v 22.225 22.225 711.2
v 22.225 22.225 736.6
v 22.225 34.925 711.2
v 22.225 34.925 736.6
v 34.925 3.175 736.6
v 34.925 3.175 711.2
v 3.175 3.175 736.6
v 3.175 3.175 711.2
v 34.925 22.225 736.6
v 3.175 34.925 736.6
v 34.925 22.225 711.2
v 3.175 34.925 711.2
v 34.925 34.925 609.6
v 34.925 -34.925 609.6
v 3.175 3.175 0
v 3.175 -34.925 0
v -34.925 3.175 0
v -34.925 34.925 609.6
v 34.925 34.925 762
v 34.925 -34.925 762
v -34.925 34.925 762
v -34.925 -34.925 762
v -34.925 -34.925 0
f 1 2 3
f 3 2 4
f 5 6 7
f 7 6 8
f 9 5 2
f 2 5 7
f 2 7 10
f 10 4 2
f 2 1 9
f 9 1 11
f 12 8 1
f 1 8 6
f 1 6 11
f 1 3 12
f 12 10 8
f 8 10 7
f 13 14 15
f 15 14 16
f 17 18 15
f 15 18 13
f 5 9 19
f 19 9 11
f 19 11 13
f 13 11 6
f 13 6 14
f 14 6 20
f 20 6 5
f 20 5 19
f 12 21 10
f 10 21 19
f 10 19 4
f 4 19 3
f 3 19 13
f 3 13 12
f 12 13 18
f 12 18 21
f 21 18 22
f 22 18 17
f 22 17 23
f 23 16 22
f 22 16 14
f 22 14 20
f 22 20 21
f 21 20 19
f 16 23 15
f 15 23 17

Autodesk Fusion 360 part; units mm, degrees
sketch "Sketch2" plane through (0, 0, 0) normal (0, 0, 1) x (1, 0, 0)
  line L0 (-34.925, 34.925) -> (34.925, 34.925)
  line L1 (34.925, 34.925) -> (34.925, -34.925)
  line L2 (34.925, -34.925) -> (-34.925, -34.925)
  line L3 (-34.925, -34.925) -> (-34.925, 34.925)
  line L4 (-34.925, 34.925) -> (34.925, -34.925) construction
  line L5 (34.925, 34.925) -> (-34.925, -34.925) construction
  dimension "d1" = 69.85
  dimension "d2" = 69.85
extrude "Extrude1" add sketch "Sketch2" along normal blind 762
chamfer "Chamfer1" distance 31.75 distance2 609.6 2 edges at (34.925, 0, 0) (0, 34.925, 0) measured on face at (11.6417, -11.6417, 0) measured on face at (11.6417, -11.6417, 0)
sketch "Sketch6" plane through (34.925, 0, 0) normal (1, 0, 0) x (0, 1, 0)
  line L0 (-34.925, 609.6) -> (34.925, 609.6)
  line L1 (34.925, 609.6) -> (34.925, 762)
  line L2 (34.925, 762) -> (-34.925, 762)
  line L3 (-34.925, 762) -> (-34.925, 609.6)
  line L4 (-34.925, 762) -> (-34.925, 723.9) construction
  line L5 (-34.925, 723.9) -> (12.7, 723.9) construction
  line L6 (3.175, 736.6) -> (22.225, 736.6)
  line L7 (22.225, 736.6) -> (22.225, 711.2)
  line L8 (22.225, 711.2) -> (3.175, 711.2)
  line L9 (3.175, 711.2) -> (3.175, 736.6)
  line L10 (3.175, 736.6) -> (22.225, 711.2) construction
  line L11 (22.225, 736.6) -> (3.175, 711.2) construction
  point P0 (12.7, 723.9)
  dimension "d23" = 38.1
  dimension "d24" = 47.625
  dimension "d25" = 19.05
  dimension "d26" = 25.4
extrude "Extrude5" cut sketch "Sketch6" against normal blind 31.75 contours L6 L7 L8 L9
sketch "Sketch7" plane through (0, 34.925, 0) normal (0, 1, 0) x (-1, 0, 0)
  line L0 (-34.925, 609.6) -> (34.925, 609.6)
  line L1 (34.925, 609.6) -> (34.925, 762)
  line L2 (34.925, 762) -> (-34.925, 762)
  line L3 (-34.925, 762) -> (-34.925, 609.6)
  line L4 (34.925, 762) -> (34.925, 723.9) construction
  line L5 (34.925, 723.9) -> (-12.7, 723.9) construction
  line L6 (-22.225, 736.6) -> (-3.175, 736.6)
  line L7 (-3.175, 736.6) -> (-3.175, 711.2)
  line L8 (-3.175, 711.2) -> (-22.225, 711.2)
  line L9 (-22.225, 711.2) -> (-22.225, 736.6)
  line L10 (-22.225, 736.6) -> (-3.175, 711.2) construction
  line L11 (-3.175, 736.6) -> (-22.225, 711.2) construction
  point P0 (-12.7, 723.9)
  dimension "d29" = 38.1
  dimension "d30" = 47.625
  dimension "d31" = 19.05
  dimension "d32" = 25.4
extrude "Extrude6" cut sketch "Sketch7" against normal blind 31.75 contours L6 L7 L8 L9
equation "d24 = 1.125 in + 0.375 in + 0.375 in"
